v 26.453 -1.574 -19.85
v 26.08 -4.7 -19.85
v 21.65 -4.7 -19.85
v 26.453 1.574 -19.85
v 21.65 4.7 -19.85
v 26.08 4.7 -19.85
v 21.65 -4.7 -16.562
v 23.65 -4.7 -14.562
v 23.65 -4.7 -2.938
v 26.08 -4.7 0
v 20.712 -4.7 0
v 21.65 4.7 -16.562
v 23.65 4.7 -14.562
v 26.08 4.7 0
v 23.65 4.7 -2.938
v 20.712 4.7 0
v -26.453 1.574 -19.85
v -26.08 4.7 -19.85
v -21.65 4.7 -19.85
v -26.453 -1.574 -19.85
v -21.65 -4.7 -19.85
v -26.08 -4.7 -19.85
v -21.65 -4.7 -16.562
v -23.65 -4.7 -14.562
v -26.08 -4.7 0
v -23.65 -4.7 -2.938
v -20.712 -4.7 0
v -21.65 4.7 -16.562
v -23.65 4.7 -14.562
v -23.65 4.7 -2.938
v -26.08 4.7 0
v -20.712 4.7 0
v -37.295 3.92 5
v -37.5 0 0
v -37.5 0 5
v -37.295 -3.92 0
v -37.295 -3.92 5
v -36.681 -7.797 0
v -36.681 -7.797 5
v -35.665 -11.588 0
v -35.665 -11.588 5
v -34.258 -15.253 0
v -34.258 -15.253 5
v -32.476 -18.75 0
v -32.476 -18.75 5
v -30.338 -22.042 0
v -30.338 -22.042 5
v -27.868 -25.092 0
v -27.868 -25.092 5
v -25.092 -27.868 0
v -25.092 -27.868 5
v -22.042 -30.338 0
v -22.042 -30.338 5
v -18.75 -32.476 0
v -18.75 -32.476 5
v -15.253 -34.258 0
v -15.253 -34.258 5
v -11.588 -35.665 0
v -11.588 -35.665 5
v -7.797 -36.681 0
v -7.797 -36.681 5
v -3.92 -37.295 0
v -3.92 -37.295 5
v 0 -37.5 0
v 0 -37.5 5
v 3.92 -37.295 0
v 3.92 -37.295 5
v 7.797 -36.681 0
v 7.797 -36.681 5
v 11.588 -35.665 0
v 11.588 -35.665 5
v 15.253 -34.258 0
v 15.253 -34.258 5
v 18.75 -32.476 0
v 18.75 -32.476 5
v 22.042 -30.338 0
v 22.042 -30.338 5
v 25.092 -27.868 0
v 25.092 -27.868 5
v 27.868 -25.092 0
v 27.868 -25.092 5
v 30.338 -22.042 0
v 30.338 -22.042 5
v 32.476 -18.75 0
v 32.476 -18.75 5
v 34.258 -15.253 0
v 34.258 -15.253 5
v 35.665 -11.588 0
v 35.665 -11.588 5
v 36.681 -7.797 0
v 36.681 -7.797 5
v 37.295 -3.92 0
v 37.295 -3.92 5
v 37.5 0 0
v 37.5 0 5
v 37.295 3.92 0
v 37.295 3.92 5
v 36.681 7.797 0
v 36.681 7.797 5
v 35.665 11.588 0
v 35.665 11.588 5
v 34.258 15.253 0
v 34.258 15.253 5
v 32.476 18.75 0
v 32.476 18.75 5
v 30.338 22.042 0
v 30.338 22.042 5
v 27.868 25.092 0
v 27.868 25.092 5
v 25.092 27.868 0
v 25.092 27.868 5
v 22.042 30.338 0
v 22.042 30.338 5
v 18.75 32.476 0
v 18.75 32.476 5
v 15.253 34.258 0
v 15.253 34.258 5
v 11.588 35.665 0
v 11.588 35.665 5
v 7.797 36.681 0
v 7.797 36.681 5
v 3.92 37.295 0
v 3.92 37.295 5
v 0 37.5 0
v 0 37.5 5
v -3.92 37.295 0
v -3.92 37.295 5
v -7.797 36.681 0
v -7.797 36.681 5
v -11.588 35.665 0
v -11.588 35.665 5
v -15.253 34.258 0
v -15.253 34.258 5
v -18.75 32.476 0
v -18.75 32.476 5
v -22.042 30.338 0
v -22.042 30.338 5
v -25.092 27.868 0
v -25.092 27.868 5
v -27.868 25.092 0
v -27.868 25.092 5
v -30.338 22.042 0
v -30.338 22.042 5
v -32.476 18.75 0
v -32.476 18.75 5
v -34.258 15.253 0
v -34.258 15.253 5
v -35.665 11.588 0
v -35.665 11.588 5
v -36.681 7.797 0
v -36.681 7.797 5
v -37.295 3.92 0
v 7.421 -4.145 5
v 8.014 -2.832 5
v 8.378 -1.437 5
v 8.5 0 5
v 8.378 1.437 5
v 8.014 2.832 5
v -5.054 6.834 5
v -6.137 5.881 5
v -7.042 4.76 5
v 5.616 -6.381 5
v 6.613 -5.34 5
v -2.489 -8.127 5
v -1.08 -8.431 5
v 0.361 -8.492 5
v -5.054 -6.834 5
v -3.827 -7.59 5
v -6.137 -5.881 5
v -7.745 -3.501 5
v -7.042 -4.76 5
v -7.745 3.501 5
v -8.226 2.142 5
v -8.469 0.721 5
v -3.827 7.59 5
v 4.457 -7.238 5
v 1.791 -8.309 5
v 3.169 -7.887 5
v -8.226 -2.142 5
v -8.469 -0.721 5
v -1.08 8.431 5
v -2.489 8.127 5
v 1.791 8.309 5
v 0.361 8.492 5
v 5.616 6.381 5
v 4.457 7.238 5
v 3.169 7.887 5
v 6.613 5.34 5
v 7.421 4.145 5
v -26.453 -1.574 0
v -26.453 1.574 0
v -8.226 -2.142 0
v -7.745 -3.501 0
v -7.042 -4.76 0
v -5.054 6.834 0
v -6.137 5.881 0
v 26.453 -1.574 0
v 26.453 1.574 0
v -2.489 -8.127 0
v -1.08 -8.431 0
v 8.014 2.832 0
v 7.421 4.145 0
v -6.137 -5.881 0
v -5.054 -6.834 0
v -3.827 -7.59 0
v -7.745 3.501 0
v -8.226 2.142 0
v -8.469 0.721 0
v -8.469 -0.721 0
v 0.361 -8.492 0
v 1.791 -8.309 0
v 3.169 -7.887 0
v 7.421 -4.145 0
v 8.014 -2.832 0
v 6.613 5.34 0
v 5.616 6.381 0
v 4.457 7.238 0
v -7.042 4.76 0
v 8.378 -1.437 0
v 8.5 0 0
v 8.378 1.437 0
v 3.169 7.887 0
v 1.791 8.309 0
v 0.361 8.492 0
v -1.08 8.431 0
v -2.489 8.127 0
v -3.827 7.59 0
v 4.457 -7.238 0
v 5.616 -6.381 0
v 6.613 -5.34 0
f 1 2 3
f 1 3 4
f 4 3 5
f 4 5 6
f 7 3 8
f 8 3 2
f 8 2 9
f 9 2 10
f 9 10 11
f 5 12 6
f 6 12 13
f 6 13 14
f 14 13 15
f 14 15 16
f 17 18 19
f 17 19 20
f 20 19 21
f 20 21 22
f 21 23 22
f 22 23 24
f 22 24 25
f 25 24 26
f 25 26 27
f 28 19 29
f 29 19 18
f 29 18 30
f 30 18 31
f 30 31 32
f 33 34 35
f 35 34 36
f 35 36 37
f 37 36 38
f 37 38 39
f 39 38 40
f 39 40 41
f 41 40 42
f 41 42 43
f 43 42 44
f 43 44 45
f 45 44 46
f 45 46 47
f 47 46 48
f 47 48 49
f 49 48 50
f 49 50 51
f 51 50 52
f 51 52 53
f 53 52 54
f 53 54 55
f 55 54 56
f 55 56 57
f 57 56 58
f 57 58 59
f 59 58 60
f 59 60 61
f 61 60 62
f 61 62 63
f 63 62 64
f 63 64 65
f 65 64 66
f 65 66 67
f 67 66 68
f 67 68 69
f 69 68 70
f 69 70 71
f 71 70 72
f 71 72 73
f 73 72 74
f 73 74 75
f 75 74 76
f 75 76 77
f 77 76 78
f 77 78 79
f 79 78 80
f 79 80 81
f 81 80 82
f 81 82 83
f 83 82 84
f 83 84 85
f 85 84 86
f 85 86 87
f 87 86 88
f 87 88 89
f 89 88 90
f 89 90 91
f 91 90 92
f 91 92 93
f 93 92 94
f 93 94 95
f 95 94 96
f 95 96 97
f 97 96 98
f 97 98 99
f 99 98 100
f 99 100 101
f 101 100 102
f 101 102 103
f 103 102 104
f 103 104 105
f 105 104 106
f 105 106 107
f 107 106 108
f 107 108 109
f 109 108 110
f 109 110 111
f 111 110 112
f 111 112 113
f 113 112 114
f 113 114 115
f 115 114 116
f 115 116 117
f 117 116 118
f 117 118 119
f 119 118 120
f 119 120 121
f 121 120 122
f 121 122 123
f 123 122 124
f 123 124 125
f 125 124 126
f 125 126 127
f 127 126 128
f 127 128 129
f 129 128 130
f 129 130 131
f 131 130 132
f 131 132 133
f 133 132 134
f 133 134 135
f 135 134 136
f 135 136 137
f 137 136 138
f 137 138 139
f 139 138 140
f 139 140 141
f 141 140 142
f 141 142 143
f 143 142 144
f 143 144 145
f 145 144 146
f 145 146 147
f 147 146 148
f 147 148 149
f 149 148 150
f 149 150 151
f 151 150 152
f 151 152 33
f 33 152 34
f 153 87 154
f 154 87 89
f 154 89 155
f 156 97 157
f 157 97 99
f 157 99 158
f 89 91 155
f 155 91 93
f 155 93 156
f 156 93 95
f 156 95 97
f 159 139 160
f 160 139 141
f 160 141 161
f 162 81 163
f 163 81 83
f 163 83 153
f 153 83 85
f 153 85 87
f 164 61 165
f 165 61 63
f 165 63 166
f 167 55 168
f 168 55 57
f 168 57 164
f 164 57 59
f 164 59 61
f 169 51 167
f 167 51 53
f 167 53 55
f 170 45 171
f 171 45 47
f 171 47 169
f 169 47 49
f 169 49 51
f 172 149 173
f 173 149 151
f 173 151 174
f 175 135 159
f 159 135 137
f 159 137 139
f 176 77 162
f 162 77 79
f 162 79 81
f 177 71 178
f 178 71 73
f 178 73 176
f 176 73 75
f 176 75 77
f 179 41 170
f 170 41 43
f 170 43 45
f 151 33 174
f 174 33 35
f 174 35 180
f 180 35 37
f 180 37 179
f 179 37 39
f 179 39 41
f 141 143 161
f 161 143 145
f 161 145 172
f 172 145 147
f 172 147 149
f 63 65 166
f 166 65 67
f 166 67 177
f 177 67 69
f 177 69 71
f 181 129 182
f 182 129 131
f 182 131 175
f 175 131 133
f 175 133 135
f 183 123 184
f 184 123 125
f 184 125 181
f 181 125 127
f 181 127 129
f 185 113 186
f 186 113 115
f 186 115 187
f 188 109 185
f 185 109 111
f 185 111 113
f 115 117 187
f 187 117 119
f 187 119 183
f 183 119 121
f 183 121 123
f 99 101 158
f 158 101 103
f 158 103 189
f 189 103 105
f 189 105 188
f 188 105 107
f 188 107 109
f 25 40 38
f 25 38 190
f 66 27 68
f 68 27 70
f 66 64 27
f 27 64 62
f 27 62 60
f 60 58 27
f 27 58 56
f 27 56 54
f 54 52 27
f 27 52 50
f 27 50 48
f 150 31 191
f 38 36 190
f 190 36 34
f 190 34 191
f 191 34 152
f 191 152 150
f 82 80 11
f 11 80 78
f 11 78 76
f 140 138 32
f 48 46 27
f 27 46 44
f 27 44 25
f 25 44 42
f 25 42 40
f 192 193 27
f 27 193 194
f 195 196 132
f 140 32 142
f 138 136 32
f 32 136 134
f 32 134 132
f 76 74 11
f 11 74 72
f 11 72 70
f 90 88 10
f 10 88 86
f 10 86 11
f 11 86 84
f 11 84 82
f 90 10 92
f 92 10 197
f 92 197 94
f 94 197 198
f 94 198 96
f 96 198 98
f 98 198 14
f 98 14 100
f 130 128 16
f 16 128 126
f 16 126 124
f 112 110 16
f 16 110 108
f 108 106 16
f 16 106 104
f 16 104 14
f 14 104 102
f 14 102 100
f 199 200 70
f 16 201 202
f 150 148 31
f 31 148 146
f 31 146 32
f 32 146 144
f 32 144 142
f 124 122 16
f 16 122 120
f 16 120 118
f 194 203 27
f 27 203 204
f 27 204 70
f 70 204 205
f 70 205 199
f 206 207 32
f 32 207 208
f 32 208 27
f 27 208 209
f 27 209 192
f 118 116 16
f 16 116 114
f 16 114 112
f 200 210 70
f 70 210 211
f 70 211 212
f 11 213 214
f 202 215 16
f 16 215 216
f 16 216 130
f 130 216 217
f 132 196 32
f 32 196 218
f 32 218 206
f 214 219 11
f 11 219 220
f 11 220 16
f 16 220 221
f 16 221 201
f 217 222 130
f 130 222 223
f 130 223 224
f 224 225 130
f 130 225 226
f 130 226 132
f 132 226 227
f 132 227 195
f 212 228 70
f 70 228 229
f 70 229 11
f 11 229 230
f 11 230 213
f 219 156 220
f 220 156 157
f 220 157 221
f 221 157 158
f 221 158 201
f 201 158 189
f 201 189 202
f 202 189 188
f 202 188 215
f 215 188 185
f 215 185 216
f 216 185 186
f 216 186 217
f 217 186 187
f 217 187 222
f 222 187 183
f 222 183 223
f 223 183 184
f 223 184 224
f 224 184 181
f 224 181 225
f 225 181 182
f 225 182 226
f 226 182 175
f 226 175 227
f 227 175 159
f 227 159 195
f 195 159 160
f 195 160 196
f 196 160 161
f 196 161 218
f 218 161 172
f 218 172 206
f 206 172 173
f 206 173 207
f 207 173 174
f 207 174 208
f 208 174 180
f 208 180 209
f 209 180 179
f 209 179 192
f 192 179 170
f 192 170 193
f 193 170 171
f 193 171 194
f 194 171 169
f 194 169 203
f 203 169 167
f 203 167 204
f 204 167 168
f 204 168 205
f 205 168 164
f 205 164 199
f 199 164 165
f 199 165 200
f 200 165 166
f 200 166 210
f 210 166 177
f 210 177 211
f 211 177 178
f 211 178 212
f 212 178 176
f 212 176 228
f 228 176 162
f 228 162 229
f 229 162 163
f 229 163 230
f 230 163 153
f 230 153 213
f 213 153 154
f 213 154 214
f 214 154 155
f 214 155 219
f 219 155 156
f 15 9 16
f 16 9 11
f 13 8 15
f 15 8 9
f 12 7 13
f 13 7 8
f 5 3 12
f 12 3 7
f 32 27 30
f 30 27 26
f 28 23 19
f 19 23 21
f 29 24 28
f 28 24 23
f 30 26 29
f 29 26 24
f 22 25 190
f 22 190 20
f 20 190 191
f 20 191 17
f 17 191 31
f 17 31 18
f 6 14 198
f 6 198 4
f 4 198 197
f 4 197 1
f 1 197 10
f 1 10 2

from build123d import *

# Parameters (mm, degrees)
SKETCH4_R           = 37.5
BOSS_EXTRUDE2_DEPTH = 5
SKETCH5_R           = 8.5
CUT_EXTRUDE1_DEPTH  = 54.268189382
BOSS_EXTRUDE3_DEPTH = 4.7
SKETCH1_R           = 37.5
SKETCH1_R_2         = 26.5
CUT_EXTRUDE2_DEPTH  = 57.626164447


with BuildPart() as part:
    # Sketch4 → Boss-Extrude2 (new body)
    with BuildSketch(Plane.XY):
        Circle(SKETCH4_R)
    extrude(amount=BOSS_EXTRUDE2_DEPTH)

    # Sketch5 → Cut-Extrude1 (cut, through all)
    with BuildSketch(Plane.XY.offset(5)):
        Circle(SKETCH5_R)
    extrude(amount=-CUT_EXTRUDE1_DEPTH, mode=Mode.SUBTRACT)

    # Sketch6 → Boss-Extrude3 (add, symmetric)
    with BuildSketch(Plane(origin=(0, 0, 0), x_dir=(1, 0, 0), z_dir=(0, 1, 0))):
        Polygon((26.5, 0), (20.712132034, 0), (23.65, 2.937867966), (23.65, 14.562132034), (21.65, 16.562132034), (21.65, 19.85), (26.5, 19.85), align=None)
    boss_extrude3 = extrude(amount=BOSS_EXTRUDE3_DEPTH, both=True)

    # Mirror1: Boss-Extrude3 across plane
    add(boss_extrude3.mirror(Plane(origin=(0, 0, 0), x_dir=(0, 0, 1), z_dir=(1, 0, 0))))

    # Sketch1 → Cut-Extrude2 (cut, through all)
    with BuildSketch(Plane.XY):
        Circle(SKETCH1_R)
        Circle(SKETCH1_R_2, mode=Mode.SUBTRACT)
    extrude(amount=-CUT_EXTRUDE2_DEPTH, mode=Mode.SUBTRACT)


solid = part.part
